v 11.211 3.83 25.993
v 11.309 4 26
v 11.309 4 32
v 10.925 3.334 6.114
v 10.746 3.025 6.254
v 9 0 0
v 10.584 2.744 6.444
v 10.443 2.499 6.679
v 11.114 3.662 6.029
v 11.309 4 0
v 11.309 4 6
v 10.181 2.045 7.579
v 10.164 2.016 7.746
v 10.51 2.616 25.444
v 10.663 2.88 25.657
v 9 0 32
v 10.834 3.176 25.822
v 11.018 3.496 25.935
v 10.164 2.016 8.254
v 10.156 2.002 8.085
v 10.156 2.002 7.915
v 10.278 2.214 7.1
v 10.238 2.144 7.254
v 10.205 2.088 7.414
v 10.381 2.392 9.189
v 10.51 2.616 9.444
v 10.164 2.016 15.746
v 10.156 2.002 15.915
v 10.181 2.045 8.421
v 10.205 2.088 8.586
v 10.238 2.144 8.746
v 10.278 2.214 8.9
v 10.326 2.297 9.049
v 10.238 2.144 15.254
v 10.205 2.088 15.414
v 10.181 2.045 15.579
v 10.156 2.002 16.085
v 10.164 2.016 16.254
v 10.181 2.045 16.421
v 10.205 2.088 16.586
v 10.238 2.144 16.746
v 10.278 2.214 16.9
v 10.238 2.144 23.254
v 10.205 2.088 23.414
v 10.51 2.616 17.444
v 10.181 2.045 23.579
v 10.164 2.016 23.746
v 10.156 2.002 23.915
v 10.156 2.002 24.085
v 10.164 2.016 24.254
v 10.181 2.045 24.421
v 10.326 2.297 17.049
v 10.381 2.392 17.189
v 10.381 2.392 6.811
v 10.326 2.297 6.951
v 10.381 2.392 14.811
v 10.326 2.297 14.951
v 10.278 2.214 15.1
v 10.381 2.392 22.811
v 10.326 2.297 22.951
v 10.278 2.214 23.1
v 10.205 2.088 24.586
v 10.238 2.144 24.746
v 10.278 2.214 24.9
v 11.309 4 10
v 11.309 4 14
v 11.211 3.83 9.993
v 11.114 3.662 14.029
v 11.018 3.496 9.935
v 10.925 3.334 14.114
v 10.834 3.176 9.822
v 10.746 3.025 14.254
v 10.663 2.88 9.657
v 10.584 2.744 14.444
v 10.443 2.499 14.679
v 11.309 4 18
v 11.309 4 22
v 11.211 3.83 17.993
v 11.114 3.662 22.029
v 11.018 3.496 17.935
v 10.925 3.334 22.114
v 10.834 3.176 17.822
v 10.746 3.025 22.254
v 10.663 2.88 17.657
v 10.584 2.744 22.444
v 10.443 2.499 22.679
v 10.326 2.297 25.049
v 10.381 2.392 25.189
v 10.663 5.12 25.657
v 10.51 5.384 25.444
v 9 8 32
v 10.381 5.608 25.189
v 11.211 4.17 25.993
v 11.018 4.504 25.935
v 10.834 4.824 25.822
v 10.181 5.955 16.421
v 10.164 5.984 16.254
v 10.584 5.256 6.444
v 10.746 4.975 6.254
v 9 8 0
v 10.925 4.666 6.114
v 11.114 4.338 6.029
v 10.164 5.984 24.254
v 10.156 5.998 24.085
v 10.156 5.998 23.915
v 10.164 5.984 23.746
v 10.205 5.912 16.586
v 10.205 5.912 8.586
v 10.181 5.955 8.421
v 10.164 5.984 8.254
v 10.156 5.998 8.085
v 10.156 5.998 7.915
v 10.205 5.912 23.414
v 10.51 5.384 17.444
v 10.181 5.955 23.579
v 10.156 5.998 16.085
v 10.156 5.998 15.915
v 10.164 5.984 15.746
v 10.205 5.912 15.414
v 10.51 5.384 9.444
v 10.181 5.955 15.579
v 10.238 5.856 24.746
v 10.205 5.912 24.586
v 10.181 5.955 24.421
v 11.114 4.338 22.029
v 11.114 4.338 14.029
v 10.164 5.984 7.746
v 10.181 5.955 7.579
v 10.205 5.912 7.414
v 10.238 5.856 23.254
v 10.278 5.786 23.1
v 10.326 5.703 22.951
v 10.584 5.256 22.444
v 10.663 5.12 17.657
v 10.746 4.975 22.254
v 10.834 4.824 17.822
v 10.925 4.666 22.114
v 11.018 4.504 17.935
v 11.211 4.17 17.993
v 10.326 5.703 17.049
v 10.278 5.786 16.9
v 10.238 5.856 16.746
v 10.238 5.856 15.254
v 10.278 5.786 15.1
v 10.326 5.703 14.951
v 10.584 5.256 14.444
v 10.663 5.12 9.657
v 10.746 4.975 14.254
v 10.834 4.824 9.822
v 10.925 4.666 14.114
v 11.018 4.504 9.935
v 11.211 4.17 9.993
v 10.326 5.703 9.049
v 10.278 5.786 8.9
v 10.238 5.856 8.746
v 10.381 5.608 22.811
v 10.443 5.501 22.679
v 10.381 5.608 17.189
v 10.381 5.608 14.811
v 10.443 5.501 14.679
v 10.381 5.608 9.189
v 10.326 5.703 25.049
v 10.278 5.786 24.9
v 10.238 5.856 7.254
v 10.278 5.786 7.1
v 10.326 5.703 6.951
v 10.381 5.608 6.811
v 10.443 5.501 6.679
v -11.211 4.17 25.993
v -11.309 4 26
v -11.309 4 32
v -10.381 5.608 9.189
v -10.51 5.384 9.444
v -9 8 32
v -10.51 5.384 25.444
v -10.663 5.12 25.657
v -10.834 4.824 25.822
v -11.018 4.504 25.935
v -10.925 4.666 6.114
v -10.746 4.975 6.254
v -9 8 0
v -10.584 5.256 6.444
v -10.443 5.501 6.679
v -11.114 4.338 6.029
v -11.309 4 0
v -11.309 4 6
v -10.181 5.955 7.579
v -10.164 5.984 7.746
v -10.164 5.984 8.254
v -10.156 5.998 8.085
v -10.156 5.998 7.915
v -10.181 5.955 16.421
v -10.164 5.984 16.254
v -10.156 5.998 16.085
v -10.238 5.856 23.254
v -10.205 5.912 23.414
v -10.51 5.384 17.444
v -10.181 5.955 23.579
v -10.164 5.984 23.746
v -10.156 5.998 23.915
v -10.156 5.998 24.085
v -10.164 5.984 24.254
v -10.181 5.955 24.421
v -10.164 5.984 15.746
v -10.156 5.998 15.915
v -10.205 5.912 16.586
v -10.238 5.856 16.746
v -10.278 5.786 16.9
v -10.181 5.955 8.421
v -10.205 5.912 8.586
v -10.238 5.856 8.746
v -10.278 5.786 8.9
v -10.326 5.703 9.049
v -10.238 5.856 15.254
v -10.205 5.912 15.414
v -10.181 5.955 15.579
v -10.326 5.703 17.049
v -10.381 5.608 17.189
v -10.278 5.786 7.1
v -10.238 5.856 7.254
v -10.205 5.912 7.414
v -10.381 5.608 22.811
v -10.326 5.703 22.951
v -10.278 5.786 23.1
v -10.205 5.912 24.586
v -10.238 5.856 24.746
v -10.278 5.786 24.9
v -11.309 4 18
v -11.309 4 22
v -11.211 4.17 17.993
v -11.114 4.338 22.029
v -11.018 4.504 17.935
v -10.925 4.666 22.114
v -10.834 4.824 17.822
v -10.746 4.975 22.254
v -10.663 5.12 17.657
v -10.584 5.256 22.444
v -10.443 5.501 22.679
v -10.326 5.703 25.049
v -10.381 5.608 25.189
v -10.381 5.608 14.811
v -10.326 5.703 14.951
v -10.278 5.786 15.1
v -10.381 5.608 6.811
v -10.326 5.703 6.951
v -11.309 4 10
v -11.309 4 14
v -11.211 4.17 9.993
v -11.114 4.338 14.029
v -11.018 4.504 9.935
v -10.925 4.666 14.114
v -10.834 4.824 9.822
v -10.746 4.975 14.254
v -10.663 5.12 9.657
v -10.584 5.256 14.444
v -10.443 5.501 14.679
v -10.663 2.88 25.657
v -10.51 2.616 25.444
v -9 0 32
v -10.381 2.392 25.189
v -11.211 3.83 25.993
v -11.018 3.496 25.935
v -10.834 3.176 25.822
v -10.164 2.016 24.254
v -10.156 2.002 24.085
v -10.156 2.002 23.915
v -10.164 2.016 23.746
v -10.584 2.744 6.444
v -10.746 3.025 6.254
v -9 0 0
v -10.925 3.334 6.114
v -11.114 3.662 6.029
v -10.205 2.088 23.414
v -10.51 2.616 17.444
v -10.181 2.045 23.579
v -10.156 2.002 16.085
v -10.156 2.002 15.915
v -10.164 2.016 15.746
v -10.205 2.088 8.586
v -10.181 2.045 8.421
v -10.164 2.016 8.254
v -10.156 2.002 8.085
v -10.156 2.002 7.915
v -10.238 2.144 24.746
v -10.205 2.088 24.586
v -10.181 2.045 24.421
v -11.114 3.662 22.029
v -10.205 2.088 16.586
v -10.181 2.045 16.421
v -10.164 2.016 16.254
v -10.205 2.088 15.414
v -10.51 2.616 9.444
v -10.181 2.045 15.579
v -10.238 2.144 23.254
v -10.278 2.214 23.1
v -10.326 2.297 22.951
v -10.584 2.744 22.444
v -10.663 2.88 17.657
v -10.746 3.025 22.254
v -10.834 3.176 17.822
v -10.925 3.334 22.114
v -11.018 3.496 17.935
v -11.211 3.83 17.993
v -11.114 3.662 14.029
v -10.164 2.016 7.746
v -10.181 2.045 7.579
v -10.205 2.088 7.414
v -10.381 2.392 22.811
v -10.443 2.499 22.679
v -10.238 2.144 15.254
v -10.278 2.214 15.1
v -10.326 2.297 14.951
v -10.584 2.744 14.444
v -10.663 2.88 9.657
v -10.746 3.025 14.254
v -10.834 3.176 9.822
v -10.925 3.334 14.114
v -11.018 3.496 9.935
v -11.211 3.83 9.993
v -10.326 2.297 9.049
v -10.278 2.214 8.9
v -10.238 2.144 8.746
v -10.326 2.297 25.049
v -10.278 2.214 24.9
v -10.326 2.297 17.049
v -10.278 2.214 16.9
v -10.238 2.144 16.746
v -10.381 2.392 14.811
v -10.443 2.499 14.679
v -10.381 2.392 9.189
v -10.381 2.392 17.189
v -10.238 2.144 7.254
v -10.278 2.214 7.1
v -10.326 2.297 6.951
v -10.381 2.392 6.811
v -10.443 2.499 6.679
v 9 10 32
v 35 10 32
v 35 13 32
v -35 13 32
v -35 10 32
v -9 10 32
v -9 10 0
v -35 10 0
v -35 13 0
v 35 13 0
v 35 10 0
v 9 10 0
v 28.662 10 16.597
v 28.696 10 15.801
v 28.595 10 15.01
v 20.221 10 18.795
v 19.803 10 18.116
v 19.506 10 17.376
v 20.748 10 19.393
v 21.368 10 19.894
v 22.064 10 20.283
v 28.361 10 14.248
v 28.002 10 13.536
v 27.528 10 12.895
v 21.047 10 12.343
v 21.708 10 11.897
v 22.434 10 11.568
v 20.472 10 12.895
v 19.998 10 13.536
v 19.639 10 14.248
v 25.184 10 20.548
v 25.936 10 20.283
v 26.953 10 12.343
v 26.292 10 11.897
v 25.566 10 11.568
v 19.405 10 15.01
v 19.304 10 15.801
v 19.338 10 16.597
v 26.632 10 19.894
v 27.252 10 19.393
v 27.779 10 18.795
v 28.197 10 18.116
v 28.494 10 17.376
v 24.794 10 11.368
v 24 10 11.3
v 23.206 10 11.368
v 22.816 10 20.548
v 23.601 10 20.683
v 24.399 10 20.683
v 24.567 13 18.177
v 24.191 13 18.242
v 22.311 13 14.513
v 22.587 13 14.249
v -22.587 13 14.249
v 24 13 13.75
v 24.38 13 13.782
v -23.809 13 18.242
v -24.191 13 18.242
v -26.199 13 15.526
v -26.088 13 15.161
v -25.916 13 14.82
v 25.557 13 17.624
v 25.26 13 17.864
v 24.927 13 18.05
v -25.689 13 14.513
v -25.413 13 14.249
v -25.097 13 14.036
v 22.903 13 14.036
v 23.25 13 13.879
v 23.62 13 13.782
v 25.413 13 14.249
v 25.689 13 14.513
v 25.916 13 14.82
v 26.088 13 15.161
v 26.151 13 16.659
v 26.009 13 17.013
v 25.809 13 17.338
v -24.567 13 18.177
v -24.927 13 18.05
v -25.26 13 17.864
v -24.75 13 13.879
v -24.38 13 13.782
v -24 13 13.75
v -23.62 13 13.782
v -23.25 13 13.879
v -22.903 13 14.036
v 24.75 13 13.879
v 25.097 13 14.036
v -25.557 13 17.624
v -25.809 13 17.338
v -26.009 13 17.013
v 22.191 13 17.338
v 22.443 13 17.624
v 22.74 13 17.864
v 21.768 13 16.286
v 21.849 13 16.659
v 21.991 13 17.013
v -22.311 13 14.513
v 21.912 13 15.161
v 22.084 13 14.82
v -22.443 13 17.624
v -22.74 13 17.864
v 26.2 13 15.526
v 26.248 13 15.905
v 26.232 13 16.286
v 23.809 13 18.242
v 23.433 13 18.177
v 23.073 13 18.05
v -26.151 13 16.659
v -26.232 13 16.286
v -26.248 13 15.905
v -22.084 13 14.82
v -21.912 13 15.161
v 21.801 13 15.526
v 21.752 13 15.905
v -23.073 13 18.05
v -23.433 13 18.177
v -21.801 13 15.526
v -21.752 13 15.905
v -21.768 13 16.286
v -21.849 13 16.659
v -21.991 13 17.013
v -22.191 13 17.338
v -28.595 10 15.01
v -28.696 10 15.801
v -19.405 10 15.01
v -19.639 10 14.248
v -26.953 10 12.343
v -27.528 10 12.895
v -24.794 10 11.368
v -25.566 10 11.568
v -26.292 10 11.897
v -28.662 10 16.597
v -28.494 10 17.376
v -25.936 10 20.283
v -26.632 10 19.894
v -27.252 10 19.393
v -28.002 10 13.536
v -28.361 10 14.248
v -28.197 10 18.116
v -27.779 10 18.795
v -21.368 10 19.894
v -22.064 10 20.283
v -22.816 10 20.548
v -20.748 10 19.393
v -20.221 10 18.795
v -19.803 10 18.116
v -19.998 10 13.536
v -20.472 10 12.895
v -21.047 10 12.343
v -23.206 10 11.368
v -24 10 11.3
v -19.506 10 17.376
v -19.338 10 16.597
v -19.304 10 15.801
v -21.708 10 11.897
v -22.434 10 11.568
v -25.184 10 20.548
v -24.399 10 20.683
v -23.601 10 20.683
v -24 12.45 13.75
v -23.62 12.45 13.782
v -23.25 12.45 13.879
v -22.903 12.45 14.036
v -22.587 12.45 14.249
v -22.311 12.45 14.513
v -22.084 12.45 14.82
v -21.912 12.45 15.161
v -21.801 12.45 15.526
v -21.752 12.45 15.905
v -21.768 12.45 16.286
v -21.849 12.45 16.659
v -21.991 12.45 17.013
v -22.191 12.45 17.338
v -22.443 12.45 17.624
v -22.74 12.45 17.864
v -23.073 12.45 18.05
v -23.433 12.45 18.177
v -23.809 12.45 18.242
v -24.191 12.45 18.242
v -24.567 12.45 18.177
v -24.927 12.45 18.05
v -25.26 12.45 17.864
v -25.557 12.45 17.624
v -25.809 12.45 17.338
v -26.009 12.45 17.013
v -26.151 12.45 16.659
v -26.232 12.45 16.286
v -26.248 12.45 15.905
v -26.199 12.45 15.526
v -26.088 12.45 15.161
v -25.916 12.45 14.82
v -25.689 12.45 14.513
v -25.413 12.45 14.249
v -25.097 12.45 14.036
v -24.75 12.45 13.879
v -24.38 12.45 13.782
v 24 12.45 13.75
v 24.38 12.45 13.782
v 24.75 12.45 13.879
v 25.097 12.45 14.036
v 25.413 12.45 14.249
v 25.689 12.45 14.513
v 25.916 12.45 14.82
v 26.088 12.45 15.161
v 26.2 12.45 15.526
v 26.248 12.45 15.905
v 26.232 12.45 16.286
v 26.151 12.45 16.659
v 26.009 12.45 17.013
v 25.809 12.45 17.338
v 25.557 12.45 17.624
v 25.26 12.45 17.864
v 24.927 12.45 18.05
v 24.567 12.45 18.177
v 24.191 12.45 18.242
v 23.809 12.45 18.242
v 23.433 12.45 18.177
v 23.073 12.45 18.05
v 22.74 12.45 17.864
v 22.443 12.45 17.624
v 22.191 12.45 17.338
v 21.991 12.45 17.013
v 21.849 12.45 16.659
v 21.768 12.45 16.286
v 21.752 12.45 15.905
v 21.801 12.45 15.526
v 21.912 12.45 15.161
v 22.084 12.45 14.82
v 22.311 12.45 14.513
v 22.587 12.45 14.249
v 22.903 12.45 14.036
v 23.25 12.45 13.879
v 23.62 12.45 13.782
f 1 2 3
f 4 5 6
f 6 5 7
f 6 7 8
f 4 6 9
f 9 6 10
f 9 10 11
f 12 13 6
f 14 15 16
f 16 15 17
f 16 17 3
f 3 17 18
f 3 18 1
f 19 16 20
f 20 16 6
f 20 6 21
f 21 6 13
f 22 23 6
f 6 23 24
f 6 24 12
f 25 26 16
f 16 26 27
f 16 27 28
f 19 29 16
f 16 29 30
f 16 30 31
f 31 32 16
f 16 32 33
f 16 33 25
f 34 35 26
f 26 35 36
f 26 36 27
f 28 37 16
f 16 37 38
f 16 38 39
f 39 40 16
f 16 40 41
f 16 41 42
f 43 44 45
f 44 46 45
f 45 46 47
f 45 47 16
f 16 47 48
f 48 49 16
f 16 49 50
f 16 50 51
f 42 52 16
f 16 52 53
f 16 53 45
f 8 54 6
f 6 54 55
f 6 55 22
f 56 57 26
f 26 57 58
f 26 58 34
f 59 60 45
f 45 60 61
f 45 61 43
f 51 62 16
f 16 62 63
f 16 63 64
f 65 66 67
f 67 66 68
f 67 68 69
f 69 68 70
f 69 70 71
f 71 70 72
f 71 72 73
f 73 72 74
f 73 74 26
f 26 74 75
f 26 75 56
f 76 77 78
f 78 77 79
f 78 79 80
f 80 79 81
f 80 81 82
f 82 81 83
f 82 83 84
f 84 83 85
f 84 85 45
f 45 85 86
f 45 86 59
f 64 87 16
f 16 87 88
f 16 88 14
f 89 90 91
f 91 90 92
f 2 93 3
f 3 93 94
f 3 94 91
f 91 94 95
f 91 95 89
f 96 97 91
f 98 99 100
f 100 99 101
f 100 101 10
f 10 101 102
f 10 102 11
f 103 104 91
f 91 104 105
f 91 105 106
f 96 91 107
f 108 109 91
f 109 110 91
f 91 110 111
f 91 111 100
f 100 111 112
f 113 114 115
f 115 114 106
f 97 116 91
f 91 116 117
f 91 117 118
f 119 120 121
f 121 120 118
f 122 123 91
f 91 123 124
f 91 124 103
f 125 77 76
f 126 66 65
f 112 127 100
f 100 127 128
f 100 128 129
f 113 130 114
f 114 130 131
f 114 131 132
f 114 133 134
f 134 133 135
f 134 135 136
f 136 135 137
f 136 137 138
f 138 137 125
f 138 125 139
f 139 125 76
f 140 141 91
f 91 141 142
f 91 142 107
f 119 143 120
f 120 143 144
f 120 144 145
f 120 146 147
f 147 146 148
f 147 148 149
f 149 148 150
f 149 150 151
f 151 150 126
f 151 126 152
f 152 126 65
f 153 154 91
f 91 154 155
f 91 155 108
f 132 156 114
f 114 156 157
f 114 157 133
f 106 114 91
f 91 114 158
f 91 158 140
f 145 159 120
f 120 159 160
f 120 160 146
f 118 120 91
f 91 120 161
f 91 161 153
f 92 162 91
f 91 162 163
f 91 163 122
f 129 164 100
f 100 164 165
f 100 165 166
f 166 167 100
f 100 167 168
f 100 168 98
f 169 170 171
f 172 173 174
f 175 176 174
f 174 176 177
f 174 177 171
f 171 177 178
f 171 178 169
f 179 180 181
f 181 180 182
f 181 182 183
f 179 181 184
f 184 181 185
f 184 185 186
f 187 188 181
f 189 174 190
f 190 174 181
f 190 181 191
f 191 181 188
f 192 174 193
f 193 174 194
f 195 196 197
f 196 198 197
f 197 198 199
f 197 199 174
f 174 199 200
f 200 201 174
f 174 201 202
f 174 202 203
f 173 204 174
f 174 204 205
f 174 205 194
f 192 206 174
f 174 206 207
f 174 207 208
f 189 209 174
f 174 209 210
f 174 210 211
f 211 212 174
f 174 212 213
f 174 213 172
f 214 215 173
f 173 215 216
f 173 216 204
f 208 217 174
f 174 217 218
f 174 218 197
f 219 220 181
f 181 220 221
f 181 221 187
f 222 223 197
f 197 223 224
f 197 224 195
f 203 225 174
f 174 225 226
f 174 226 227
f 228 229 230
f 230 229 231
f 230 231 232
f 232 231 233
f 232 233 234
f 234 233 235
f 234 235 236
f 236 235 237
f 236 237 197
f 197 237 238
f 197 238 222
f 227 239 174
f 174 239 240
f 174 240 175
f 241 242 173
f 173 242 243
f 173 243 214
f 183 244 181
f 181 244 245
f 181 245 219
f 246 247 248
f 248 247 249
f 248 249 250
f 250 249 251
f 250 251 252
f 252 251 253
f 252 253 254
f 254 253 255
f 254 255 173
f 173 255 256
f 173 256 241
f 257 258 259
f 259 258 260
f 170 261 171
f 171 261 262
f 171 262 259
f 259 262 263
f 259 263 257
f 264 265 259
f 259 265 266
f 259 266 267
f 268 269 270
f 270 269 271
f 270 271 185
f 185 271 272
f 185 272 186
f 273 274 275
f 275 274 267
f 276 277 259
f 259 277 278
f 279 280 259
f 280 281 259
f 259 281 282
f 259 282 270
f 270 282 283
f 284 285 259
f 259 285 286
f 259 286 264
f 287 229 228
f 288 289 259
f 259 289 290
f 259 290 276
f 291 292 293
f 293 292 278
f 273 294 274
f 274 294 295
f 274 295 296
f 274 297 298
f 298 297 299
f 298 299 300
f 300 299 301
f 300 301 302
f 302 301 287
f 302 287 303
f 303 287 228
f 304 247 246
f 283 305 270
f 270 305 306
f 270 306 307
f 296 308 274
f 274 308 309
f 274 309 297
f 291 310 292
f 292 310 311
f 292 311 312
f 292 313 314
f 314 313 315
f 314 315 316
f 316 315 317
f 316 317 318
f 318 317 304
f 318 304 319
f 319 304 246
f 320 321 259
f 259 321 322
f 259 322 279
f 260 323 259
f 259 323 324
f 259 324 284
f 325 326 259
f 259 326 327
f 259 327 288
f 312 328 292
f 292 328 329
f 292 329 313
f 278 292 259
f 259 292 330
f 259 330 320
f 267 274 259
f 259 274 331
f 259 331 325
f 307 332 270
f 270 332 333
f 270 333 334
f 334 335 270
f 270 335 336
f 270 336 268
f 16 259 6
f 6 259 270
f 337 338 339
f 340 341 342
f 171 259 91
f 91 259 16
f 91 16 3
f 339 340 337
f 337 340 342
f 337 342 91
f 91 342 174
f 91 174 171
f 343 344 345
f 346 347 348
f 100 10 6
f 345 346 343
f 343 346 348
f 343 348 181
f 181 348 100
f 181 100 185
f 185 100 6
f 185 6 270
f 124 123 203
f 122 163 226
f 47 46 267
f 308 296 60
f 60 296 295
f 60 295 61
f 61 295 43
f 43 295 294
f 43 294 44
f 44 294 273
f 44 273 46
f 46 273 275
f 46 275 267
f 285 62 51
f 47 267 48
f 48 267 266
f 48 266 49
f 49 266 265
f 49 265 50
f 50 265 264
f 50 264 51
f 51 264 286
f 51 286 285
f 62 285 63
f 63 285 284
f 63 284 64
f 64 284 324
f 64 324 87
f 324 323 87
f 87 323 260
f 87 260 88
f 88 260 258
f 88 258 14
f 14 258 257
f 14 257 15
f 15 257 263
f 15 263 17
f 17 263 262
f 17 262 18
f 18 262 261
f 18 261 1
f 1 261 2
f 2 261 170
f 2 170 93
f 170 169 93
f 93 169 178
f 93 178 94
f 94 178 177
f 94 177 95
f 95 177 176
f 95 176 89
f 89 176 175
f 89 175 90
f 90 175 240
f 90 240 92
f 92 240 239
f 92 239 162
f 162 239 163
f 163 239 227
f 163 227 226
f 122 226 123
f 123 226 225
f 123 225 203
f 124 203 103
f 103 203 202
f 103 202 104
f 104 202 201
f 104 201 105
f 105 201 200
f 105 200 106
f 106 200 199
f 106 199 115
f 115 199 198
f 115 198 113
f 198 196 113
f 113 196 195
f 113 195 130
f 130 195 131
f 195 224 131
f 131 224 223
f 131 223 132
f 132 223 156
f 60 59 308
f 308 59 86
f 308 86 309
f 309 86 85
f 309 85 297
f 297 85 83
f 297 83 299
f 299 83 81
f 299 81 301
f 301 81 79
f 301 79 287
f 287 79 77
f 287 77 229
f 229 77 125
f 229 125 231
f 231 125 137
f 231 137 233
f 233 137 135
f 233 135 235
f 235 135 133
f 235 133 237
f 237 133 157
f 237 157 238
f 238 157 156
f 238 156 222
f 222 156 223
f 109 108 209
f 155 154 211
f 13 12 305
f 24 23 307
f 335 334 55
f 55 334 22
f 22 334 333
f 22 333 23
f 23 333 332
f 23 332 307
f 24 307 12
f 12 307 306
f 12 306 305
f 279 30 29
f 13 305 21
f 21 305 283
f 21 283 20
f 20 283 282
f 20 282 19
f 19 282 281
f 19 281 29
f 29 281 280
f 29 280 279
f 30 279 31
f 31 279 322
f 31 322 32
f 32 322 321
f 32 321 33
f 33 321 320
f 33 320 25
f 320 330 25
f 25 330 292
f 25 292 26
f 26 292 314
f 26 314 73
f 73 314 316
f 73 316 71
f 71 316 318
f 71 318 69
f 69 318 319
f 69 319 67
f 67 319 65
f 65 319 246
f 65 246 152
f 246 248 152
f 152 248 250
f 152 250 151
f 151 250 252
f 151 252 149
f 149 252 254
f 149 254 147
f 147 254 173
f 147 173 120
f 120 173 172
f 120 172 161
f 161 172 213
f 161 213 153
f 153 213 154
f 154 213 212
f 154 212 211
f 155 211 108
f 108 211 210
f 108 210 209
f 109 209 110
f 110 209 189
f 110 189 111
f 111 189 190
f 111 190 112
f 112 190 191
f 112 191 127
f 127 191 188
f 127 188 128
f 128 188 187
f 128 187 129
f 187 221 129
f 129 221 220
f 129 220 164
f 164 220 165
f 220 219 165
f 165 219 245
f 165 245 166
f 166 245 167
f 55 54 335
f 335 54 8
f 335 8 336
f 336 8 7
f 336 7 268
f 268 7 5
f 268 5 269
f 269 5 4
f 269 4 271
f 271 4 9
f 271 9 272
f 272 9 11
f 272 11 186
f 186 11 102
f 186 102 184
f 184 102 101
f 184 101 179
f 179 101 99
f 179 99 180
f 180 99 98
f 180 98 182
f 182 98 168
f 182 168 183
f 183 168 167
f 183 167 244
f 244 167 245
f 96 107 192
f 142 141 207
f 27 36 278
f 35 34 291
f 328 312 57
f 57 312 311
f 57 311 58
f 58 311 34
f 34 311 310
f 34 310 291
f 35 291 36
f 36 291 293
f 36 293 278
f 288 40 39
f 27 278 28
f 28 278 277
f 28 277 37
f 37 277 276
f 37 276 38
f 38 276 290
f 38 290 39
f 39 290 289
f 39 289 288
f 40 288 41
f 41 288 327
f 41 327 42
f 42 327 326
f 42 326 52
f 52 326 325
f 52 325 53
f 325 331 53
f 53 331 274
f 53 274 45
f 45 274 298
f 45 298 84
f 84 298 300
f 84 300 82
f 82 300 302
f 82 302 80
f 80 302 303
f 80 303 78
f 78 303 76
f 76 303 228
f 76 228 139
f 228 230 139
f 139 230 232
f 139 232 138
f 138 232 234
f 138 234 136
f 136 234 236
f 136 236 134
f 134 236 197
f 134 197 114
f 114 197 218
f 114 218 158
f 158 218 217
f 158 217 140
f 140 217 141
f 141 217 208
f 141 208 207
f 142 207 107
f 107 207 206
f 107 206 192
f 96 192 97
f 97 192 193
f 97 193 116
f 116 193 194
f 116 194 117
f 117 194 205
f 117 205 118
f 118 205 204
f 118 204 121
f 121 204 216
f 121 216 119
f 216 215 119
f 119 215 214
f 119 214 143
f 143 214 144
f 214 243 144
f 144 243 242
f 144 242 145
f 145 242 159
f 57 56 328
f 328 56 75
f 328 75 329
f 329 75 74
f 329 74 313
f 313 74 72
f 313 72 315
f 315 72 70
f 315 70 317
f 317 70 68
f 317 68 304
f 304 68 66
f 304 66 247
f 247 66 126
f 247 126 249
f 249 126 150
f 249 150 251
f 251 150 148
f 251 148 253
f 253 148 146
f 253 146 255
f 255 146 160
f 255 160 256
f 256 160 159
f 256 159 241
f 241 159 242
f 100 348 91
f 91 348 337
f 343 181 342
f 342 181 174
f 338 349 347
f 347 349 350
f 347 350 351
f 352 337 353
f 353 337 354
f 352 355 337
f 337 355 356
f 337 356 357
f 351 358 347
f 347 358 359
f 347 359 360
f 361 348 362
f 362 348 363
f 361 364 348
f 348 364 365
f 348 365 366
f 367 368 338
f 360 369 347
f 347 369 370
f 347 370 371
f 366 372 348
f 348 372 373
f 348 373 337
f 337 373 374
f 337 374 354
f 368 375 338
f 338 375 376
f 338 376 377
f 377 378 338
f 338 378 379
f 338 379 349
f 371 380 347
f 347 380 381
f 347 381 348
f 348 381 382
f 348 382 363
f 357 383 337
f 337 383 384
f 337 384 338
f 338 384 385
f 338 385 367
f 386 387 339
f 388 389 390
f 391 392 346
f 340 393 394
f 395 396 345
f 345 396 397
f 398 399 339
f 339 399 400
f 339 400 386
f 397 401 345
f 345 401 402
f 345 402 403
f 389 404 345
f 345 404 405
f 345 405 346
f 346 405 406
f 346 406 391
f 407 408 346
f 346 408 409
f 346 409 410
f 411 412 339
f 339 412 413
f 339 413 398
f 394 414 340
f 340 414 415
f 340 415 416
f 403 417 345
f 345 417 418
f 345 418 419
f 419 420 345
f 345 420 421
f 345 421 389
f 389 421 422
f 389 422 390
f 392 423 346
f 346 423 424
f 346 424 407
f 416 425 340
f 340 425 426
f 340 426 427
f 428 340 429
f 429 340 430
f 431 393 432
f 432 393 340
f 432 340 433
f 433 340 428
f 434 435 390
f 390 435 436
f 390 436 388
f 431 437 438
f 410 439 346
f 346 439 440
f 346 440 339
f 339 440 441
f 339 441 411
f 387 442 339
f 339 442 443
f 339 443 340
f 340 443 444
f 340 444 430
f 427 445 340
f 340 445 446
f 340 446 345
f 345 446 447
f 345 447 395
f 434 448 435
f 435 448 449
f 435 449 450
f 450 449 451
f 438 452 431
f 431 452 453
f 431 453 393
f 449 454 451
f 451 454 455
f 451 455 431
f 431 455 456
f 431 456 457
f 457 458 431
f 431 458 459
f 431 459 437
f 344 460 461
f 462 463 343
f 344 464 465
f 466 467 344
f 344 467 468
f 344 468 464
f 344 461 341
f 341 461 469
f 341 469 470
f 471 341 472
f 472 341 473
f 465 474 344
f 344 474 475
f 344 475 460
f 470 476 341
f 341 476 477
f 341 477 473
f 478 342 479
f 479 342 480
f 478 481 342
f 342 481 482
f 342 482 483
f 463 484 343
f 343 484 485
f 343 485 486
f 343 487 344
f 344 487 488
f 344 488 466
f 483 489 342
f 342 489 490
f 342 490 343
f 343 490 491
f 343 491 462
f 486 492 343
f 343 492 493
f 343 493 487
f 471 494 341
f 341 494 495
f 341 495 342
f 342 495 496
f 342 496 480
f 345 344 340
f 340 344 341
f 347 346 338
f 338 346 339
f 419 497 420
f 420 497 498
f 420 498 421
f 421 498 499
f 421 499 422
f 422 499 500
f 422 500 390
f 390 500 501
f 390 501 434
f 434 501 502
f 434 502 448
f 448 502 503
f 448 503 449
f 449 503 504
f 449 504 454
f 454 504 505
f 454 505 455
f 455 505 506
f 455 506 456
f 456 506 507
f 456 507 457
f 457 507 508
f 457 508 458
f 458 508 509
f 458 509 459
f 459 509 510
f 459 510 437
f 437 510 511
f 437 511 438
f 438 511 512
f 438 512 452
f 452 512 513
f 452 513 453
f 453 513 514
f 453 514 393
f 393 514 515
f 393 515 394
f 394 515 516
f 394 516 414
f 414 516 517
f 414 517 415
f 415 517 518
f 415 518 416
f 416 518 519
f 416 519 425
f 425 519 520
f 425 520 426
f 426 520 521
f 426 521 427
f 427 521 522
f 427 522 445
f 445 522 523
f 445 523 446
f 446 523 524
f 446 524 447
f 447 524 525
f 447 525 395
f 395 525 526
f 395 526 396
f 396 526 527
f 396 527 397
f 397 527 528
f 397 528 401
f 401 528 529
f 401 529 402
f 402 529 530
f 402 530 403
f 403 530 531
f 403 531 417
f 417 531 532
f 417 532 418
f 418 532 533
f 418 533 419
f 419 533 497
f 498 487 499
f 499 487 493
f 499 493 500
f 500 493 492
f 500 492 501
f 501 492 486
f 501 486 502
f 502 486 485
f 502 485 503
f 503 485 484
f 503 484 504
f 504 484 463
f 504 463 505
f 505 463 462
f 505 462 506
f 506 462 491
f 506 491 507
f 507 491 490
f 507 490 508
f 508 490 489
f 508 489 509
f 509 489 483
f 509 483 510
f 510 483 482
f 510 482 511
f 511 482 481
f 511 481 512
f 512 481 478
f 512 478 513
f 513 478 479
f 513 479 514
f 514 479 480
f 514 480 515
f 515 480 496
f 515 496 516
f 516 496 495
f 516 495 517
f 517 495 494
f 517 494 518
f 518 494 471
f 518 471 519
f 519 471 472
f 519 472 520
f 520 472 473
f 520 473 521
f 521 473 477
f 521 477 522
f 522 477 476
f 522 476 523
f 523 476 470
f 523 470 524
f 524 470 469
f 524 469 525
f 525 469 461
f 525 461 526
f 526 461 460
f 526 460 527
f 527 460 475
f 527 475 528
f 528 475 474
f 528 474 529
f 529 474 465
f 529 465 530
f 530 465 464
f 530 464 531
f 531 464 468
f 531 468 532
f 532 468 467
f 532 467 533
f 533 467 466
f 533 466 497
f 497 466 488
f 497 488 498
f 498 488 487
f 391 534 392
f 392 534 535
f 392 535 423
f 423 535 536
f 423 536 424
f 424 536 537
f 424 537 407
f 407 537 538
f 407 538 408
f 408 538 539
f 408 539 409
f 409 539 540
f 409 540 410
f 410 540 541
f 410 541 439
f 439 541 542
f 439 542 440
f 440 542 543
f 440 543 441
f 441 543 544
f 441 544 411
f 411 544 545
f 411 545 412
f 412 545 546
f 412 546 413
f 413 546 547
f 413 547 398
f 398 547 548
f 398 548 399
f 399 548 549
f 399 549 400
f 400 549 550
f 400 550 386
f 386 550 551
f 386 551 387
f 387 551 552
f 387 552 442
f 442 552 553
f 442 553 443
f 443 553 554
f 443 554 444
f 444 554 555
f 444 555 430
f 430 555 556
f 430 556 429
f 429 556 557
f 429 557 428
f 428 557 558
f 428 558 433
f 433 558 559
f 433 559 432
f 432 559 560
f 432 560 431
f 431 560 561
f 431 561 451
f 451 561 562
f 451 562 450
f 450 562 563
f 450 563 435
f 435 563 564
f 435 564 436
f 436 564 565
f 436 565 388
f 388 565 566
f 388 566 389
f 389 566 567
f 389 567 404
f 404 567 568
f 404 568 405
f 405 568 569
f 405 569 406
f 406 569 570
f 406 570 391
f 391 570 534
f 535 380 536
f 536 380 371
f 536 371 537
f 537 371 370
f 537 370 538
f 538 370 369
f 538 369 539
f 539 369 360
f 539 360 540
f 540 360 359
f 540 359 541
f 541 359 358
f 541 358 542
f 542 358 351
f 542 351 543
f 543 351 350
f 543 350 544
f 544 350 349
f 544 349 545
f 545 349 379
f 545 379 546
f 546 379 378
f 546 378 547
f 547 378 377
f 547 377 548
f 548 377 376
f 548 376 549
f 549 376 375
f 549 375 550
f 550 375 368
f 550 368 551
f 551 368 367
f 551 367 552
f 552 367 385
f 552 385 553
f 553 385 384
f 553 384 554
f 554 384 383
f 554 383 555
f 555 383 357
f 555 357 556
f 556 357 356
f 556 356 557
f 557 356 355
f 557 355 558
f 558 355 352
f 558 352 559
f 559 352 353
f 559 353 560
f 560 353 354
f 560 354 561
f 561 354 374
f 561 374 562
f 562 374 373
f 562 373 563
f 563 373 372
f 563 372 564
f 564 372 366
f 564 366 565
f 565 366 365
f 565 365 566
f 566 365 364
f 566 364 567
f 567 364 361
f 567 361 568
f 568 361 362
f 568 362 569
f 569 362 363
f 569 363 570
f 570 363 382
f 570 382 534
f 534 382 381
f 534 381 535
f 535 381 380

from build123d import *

# Parameters (mm, degrees)
BOSS_EXTRUDE1_DEPTH                          = 32
SKETCH2_R                                    = 2
CUT_EXTRUDE1_DEPTH                           = 35.869794274
LPATTERN1_COUNT                              = 3
LPATTERN1_PITCH                              = 8
BOSS_EXTRUDE2_DEPTH                          = 9
BOSS_EXTRUDE2_DEPTH_BACK                     = 9
SKETCH3_W                                    = 32
SKETCH3_H                                    = 2
BOSS_EXTRUDE3_DEPTH                          = 35
BOSS_EXTRUDE3_DEPTH_BACK                     = 35
SKETCH4_W                                    = 32
SKETCH4_H                                    = 3
CSK_FOR_M4_COUNTERSUNK_FLAT_HEAD_SCR_2_COUNT = 2
CSK_FOR_M4_COUNTERSUNK_FLAT_HEAD_SCR_2_PITCH = 48


with BuildPart() as part:
    # Sketch1 → Boss-Extrude1 (new body)
    with BuildSketch(Plane.XY):
        Polygon((9, 0), (-9, 0), (-11.309401077, 4), (-9, 8), (9, 8), (11.309401077, 4), align=None)
    extrude(amount=BOSS_EXTRUDE1_DEPTH)

    # Sketch2 → Cut-Extrude1 (cut, symmetric)
    with BuildSketch(Plane(origin=(0, 0, 0), x_dir=(0, 0, -1), z_dir=(1, 0, 0))):
        with Locations((-24, 4)):
            Circle(SKETCH2_R)
    cut_extrude1 = extrude(amount=CUT_EXTRUDE1_DEPTH, both=True, mode=Mode.SUBTRACT)

    # LPattern1: Cut-Extrude1 ×3
    with Locations(*[(0, 0, -i * LPATTERN1_PITCH) for i in range(1, LPATTERN1_COUNT)]):
        add(cut_extrude1, mode=Mode.SUBTRACT)

    # Sketch3 → Boss-Extrude2 (add, two sides: drawn at the far end of the back side and taken through both)
    with BuildSketch(Plane(origin=(0, 0, 0), x_dir=(0, 0, -1), z_dir=(1, 0, 0)).offset(-BOSS_EXTRUDE2_DEPTH_BACK)):
        with Locations((-16, 9)):
            Rectangle(SKETCH3_W, SKETCH3_H)
    extrude(amount=BOSS_EXTRUDE2_DEPTH + BOSS_EXTRUDE2_DEPTH_BACK)

    # Sketch4 → Boss-Extrude3 (add, two sides: drawn at the far end of the back side and taken through both)
    with BuildSketch(Plane(origin=(0, 0, 0), x_dir=(0, 0, -1), z_dir=(1, 0, 0)).offset(-BOSS_EXTRUDE3_DEPTH_BACK)):
        with Locations((-16, 11.5)):
            Rectangle(SKETCH4_W, SKETCH4_H)
    extrude(amount=BOSS_EXTRUDE3_DEPTH + BOSS_EXTRUDE3_DEPTH_BACK)

    # Skizze3 → CSK for M4 Countersunk Flat Head Screw1 (revolve, cut)
    with BuildSketch(Plane(origin=(24, 10, 16), x_dir=(0, 0, -1), z_dir=(1, 0, 0))):
        Polygon((0, 0), (0, 3), (2.25, 3), (2.25, 2.45), (4.7, 0), align=None)
    csk_for_m4_countersunk_flat_head_screw1 = revolve(axis=Axis((24, 3.65, 16), (0, 1, 0)), mode=Mode.SUBTRACT)

    # CSK for M4 Countersunk Flat Head Scr 2: CSK for M4 Countersunk Flat Head Screw1 ×2
    with Locations(*[(-i * CSK_FOR_M4_COUNTERSUNK_FLAT_HEAD_SCR_2_PITCH, 0, 0) for i in range(1, CSK_FOR_M4_COUNTERSUNK_FLAT_HEAD_SCR_2_COUNT)]):
        add(csk_for_m4_countersunk_flat_head_screw1, mode=Mode.SUBTRACT)


solid = part.part
